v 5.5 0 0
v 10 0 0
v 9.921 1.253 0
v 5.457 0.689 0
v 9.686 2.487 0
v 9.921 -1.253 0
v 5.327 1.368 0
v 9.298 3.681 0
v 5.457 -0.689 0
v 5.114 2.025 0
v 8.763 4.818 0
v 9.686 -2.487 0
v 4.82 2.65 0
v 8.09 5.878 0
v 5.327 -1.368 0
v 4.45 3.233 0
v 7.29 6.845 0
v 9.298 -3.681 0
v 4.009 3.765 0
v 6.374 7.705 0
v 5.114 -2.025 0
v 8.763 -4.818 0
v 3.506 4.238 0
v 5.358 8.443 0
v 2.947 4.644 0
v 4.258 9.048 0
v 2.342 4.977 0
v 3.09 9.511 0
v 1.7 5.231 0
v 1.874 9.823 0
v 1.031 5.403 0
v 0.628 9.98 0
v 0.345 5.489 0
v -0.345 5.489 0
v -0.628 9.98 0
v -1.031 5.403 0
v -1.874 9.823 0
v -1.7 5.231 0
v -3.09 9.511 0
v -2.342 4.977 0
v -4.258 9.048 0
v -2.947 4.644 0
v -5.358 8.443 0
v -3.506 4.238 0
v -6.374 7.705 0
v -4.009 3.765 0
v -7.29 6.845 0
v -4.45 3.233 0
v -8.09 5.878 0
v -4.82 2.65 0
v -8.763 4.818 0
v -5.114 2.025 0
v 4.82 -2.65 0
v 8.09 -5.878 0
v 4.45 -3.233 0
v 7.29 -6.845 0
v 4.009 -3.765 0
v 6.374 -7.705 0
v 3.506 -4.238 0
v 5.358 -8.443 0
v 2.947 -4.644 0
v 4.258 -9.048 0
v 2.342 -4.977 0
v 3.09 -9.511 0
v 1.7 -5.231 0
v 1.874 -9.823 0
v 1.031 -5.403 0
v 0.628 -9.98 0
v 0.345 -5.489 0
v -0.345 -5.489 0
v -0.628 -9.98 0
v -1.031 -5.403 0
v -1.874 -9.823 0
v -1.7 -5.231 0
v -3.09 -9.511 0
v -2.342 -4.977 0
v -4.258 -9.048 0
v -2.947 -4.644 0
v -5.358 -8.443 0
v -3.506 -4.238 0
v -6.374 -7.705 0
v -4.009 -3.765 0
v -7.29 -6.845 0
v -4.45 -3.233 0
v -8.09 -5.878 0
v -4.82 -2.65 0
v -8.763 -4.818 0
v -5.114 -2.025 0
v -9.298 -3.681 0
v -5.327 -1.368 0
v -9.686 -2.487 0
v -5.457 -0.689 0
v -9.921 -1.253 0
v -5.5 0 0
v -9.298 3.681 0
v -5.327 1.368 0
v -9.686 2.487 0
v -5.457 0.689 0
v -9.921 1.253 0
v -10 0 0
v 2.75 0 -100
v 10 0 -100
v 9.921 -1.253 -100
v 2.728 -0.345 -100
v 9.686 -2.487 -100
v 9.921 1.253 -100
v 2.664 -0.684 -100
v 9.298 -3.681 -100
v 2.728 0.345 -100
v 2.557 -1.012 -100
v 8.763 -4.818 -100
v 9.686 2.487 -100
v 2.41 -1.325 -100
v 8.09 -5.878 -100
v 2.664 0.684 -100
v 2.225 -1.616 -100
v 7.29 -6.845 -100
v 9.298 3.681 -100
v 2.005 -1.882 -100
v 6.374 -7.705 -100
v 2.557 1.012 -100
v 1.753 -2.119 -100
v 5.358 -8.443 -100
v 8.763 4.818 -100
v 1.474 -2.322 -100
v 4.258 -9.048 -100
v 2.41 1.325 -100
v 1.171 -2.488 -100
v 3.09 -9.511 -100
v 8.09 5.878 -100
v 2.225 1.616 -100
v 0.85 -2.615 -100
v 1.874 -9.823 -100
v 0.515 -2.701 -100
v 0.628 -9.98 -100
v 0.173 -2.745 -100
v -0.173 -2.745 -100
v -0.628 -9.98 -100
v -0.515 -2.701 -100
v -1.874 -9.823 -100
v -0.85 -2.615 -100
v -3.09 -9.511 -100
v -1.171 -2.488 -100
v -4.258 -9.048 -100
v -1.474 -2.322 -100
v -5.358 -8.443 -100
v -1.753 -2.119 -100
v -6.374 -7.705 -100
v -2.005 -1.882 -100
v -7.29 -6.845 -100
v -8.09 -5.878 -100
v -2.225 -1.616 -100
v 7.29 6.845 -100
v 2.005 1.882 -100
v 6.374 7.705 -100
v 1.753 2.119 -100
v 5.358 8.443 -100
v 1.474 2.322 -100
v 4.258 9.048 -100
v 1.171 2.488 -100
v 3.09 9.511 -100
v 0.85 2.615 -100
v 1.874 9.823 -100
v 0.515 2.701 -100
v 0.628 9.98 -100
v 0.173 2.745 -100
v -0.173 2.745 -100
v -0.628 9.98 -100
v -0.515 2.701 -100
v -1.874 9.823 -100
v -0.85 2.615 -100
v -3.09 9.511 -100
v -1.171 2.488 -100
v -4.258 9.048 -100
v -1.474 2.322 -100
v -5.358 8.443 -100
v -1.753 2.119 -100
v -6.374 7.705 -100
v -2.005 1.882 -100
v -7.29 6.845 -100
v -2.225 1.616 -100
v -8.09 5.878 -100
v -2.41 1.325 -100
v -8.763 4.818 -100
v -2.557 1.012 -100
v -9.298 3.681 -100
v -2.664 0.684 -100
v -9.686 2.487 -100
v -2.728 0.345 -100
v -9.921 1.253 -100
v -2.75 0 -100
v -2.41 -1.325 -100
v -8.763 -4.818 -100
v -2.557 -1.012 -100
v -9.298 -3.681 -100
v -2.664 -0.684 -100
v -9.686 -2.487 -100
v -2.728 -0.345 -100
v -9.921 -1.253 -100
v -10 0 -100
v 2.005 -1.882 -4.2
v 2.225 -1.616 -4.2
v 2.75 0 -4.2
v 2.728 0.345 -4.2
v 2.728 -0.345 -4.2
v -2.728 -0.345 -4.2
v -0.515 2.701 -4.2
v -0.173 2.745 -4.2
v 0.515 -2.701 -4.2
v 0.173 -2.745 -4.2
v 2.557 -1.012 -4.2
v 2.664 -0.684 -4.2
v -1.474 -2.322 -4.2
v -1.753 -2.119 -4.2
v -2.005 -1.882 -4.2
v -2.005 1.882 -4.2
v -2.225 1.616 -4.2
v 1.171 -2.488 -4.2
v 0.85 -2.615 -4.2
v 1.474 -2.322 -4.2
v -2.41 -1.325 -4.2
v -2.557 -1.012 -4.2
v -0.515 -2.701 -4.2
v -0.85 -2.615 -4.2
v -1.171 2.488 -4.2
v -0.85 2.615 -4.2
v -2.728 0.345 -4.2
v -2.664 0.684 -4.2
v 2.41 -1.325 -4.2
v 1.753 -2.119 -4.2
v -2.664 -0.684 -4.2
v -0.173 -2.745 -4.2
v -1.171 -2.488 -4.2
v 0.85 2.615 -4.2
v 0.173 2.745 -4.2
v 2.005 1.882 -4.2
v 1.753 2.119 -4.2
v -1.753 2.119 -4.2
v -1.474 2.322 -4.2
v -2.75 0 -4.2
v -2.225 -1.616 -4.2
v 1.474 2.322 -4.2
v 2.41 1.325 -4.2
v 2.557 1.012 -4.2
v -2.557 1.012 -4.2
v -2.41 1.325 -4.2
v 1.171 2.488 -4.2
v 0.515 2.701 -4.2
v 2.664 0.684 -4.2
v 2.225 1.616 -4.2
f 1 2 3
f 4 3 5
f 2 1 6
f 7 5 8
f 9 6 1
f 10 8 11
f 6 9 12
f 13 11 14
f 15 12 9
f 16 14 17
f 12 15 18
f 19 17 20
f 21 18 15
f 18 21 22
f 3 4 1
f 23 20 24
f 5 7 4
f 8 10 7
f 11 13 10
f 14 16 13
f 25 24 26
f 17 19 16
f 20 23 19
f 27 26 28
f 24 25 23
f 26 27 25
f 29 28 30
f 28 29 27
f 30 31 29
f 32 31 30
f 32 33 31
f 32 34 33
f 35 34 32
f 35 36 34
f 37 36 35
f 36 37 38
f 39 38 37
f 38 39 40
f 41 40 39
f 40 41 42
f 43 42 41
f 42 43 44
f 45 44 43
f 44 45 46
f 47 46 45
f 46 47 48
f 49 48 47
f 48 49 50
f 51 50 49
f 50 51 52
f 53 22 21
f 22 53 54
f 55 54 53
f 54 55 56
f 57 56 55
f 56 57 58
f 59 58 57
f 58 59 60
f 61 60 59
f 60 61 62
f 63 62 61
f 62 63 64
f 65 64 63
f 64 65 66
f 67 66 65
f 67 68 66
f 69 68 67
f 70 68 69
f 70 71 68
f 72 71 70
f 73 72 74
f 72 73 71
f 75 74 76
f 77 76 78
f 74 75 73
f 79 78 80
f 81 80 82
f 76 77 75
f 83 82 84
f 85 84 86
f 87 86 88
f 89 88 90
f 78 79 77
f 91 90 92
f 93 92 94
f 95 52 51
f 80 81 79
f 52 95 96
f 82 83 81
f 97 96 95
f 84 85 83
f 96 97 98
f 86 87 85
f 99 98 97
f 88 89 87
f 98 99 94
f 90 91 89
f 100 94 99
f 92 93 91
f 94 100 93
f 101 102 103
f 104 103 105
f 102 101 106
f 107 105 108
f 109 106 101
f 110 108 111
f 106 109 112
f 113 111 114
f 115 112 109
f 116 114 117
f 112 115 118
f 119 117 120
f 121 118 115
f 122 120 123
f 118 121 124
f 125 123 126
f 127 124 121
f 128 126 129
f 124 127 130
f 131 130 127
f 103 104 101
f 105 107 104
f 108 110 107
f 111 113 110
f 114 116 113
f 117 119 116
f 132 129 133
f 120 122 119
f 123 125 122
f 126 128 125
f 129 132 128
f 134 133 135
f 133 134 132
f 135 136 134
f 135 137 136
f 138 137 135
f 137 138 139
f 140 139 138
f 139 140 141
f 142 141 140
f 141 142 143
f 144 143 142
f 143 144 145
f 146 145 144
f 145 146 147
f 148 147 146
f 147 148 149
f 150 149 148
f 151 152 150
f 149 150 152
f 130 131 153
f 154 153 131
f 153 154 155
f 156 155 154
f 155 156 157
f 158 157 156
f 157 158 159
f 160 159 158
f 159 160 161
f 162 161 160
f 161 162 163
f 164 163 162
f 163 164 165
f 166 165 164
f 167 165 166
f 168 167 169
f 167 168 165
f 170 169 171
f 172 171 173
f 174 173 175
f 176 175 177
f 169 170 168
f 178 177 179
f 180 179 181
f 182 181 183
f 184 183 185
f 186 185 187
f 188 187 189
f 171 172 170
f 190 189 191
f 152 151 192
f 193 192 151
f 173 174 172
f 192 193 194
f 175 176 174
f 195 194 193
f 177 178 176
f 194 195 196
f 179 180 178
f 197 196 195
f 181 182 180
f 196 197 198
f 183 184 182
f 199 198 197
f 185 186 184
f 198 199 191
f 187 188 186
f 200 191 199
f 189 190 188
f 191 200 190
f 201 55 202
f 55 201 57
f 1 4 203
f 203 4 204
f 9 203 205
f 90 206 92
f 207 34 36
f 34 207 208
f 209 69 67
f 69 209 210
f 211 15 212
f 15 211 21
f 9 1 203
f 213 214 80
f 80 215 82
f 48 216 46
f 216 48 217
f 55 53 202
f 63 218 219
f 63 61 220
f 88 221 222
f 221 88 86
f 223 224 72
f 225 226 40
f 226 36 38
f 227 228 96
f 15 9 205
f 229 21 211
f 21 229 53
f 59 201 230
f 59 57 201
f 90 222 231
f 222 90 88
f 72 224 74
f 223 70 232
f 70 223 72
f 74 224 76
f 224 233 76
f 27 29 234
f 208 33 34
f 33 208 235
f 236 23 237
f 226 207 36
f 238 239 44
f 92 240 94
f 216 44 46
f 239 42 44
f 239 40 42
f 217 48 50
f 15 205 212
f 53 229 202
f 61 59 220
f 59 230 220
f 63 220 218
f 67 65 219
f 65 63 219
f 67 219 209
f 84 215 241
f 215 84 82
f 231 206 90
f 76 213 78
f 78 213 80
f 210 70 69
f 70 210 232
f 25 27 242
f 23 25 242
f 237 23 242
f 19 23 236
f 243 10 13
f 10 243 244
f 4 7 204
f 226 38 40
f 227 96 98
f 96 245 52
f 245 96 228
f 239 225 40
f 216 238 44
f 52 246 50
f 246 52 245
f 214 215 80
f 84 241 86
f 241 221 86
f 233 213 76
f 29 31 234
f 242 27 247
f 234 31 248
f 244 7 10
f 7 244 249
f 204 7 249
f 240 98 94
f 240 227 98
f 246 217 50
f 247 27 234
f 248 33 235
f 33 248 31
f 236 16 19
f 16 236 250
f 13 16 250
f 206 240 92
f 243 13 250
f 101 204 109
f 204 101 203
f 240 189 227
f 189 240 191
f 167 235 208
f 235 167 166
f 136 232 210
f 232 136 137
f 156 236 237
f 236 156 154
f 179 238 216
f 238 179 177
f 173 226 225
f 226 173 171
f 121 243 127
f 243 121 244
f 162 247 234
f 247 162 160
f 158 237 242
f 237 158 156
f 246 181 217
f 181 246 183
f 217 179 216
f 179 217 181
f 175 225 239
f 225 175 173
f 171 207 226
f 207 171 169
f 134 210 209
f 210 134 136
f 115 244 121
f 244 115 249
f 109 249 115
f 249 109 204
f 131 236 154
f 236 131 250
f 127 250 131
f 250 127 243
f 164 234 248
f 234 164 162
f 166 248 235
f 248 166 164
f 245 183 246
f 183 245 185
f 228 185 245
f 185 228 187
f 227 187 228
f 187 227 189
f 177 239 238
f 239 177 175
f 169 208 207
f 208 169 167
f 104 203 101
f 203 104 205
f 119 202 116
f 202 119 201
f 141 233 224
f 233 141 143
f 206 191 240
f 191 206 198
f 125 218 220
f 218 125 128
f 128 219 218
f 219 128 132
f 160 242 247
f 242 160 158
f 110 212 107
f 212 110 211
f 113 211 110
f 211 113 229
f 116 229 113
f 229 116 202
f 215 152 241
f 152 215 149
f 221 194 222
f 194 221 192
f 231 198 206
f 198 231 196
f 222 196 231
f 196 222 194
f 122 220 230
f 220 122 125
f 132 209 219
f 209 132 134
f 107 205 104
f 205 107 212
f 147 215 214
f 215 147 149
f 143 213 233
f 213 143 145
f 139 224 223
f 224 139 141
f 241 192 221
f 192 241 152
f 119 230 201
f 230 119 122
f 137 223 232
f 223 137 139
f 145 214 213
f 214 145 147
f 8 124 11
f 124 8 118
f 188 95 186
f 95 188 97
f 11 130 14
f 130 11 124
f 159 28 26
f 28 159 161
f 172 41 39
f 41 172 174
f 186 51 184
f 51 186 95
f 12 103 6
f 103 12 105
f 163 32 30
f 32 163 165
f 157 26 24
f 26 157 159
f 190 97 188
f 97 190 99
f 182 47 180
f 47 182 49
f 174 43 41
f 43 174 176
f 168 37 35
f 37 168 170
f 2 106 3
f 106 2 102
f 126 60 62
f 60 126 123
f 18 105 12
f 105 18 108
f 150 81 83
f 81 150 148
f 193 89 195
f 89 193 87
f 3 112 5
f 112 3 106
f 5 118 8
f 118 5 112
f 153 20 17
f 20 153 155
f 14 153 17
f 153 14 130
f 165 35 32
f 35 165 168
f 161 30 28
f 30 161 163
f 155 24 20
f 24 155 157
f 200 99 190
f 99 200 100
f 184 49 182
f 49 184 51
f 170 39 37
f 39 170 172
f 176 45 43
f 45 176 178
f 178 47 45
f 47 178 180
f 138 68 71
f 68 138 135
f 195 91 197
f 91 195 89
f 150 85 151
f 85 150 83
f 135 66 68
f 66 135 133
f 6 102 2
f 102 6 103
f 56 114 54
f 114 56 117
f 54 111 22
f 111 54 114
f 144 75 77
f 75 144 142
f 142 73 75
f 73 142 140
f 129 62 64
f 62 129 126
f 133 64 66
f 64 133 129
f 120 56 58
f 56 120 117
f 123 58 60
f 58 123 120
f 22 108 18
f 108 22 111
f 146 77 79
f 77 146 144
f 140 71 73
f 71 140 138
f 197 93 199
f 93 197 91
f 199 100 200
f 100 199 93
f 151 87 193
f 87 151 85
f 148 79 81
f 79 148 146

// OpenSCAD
$fn = 50;


difference() {
	union() {
		translate(v = [0, 0, -100.0000000000]) {
			cylinder(h = 100, r = 10.0000000000);
		}
		cylinder(h = 0, r = 20.0000000000);
	}
	union() {
		translate(v = [0, 0, 0]) {
			rotate(a = [0, 0, 0]) {
				difference() {
					union() {
						#translate(v = [0, 0, -100.0000000000]) {
							cylinder(h = 100, r = 2.2500000000);
						}
						#translate(v = [0, 0, -4.2000000000]) {
							cylinder(h = 4.2000000000, r = 10.0000000000, r1 = 2.7500000000, r2 = 5.5000000000);
						}
						#translate(v = [0, 0, -100.0000000000]) {
							cylinder(h = 100, r = 2.7500000000);
						}
						#translate(v = [0, 0, -100.0000000000]) {
							cylinder(h = 100, r = 2.2500000000);
						}
					}
					union();
				}
			}
		}
	}
}
